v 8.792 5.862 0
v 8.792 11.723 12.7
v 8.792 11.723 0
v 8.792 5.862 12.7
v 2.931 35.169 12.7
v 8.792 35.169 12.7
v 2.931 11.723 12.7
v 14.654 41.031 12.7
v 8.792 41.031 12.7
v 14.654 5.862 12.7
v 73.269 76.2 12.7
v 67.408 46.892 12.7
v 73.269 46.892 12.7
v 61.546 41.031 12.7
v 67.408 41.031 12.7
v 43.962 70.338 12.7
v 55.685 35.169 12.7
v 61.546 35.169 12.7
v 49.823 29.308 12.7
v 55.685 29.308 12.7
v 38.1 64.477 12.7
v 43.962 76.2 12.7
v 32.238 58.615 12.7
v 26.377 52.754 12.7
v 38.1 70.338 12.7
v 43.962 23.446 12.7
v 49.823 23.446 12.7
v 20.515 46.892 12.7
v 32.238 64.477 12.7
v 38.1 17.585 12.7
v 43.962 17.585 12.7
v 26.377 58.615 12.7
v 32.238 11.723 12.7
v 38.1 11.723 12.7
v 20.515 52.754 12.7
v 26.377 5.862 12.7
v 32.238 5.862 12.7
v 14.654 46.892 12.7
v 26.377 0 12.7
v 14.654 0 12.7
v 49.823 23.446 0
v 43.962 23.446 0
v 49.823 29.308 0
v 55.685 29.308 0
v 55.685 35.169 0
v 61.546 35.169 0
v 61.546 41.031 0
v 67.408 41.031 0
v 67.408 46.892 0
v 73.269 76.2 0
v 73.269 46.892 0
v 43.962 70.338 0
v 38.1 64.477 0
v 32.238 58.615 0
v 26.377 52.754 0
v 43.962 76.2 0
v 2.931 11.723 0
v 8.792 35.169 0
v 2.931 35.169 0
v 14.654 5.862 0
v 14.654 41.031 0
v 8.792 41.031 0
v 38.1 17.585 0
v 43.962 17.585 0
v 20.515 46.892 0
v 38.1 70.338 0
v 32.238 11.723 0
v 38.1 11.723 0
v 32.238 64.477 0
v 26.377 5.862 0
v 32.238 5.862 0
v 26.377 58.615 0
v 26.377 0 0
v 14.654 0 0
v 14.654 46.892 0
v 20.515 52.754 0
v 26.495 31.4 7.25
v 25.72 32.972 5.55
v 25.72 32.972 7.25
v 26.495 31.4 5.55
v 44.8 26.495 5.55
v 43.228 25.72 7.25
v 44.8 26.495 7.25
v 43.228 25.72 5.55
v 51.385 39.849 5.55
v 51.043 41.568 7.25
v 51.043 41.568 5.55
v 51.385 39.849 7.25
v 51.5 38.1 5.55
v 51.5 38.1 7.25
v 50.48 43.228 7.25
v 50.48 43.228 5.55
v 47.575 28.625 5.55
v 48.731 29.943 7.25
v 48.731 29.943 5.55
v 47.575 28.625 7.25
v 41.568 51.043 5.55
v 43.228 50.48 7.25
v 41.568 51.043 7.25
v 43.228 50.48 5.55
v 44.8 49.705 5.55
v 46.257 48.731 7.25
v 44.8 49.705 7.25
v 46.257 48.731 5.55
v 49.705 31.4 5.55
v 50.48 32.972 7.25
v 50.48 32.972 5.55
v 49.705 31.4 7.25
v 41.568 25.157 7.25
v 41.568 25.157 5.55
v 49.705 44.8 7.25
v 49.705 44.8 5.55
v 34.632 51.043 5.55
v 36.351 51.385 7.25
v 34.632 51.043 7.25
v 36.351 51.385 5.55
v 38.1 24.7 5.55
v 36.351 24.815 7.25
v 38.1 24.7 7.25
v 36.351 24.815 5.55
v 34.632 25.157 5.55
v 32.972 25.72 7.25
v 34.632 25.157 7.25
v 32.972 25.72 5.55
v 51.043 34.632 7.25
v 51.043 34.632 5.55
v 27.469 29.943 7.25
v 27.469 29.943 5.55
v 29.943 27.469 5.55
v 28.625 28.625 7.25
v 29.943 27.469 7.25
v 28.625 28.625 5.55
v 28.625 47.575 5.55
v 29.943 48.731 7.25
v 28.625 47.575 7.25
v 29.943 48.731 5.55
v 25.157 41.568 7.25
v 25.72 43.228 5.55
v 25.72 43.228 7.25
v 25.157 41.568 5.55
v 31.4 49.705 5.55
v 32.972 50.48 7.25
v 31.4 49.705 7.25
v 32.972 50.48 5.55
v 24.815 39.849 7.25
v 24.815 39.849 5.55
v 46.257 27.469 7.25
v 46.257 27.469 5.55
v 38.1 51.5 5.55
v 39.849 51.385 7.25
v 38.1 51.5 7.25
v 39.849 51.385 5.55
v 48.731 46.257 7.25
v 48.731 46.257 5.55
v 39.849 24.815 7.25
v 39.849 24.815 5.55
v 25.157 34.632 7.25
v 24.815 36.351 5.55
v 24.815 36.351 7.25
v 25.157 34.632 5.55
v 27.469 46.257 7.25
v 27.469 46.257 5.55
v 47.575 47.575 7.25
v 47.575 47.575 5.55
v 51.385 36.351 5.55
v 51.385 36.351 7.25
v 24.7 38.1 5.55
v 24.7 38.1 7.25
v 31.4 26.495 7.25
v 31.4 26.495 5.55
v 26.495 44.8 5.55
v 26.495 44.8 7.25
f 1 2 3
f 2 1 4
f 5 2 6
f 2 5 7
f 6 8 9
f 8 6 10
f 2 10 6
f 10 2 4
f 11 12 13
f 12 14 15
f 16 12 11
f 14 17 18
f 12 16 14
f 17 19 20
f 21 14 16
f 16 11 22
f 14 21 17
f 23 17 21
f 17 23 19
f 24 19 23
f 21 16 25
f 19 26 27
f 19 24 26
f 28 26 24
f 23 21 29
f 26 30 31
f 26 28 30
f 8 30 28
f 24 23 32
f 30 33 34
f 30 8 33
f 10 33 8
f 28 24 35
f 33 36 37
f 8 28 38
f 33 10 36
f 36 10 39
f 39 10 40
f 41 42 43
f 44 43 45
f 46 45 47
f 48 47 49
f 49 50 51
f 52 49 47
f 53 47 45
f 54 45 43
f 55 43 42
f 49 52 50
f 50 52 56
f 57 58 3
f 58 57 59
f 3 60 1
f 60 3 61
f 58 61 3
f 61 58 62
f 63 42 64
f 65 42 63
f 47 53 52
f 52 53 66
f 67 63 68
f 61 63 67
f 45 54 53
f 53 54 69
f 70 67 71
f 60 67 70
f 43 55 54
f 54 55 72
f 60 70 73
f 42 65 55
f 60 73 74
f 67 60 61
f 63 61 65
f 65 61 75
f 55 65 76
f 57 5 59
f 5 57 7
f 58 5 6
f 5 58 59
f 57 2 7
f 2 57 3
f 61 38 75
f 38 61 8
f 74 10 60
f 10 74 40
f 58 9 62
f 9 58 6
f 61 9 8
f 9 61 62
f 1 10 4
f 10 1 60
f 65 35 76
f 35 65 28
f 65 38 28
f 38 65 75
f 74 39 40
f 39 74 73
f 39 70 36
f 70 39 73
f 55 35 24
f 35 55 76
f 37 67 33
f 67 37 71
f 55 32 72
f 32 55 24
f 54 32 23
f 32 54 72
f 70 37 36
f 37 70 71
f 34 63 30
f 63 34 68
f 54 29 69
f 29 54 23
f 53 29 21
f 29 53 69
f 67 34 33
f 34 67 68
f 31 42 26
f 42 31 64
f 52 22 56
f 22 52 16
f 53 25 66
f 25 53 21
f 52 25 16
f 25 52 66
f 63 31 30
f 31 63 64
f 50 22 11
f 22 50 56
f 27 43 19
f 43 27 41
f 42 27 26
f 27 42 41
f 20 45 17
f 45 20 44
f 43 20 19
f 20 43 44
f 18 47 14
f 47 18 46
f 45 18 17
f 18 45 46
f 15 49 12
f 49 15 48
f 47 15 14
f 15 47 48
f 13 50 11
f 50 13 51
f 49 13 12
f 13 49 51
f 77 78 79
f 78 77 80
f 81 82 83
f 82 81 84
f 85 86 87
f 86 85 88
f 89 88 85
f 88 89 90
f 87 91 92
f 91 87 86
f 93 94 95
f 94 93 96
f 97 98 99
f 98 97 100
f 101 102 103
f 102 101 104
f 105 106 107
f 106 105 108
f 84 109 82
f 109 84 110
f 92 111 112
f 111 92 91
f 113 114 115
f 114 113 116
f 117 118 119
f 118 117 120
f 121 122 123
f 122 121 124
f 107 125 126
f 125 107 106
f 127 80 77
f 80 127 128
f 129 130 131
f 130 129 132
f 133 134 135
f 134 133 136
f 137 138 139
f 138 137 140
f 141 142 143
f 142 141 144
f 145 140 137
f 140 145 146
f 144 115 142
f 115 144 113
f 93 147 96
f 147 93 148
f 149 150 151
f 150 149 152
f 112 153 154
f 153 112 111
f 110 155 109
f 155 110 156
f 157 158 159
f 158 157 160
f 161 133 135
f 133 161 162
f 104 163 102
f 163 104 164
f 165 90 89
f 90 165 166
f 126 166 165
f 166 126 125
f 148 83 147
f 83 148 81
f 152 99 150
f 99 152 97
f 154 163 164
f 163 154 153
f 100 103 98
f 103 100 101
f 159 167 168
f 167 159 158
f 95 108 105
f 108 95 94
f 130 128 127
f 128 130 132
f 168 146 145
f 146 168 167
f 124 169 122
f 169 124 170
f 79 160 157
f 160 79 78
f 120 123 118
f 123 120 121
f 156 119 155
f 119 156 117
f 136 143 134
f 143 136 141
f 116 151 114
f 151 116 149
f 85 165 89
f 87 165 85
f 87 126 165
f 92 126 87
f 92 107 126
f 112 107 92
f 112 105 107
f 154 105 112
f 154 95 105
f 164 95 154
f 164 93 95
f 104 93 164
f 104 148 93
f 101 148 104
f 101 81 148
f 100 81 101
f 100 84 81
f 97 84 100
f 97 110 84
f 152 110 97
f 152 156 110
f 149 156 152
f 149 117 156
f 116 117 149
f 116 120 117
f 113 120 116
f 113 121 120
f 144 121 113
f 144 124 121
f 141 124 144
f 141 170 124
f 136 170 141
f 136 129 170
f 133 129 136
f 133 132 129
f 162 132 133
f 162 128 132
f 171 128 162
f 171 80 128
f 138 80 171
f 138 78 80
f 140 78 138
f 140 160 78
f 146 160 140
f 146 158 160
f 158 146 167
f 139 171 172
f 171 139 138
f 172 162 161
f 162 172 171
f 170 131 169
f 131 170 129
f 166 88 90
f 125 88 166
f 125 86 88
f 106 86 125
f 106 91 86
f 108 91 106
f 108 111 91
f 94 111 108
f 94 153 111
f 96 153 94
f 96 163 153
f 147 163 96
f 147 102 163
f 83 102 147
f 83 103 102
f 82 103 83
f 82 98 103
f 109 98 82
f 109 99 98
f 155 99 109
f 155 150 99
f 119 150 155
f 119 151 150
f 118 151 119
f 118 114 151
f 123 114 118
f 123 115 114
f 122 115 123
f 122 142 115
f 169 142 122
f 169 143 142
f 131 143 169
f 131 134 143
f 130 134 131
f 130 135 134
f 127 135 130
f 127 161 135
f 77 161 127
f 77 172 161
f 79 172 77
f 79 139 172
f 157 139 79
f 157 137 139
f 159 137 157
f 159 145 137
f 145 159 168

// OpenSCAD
// amethyst_shard — Minecraft Item Shape 3D Model
// Auto-generated from minecraft/textures/item/amethyst_shard.png
//
// Open in OpenSCAD → F5 preview → F6 render → F7 export STL

// ============================================================
// PARAMETERS
// ============================================================

GRID_SIZE_IN    = 3.0;           // crafting table slot size
PIXELS          = 13;              // grid divisions (shape-fitted)
PIXEL_MM        = (GRID_SIZE_IN * 25.4) / PIXELS;  // mm per pixel

DEPTH_IN        = 0.5;          // extrusion depth in inches
DEPTH_MM        = DEPTH_IN * 25.4;

// NFC tag (NTAG215 25mm coin)
TAG_DIAMETER    = 26;           // mm — slightly oversized for easy drop-in
TAG_THICKNESS   = 1.2;         // mm
TAG_CLEARANCE   = 0.4;         // mm extra around tag

cavity_d = TAG_DIAMETER + TAG_CLEARANCE * 2;
cavity_h = TAG_THICKNESS + TAG_CLEARANCE;

echo(str("Tag cavity: ", cavity_d, "mm dia × ", cavity_h, "mm deep"));
echo(str("PAUSE AT: ", DEPTH_MM / 2 + cavity_h / 2, "mm to insert tag"));

module tag_cavity() {
    cx = (6.0 + 0.5) * PIXEL_MM;
    cy = (PIXELS - 1 - 6.0 + 0.5) * PIXEL_MM;
    translate([cx, cy, DEPTH_MM / 2 - cavity_h / 2])
        cylinder(d = cavity_d, h = cavity_h + 0.1, $fn = 48);
}

module tag_shelf() {
    cx = (6.0 + 0.5) * PIXEL_MM;
    cy = (PIXELS - 1 - 6.0 + 0.5) * PIXEL_MM;
    translate([cx, cy, DEPTH_MM / 2 - cavity_h / 2 - 1.0])
        cylinder(d = cavity_d + 4, h = 1.0, $fn = 48);
}

echo(str("Pixel size: ", PIXEL_MM, "mm"));
echo(str("Footprint: ", PIXELS * PIXEL_MM, "mm = ", GRID_SIZE_IN, " in"));
echo(str("Depth: ", DEPTH_MM, "mm = ", DEPTH_IN, " in"));

// ============================================================
// PIXEL MAP — 89 opaque pixels
// ============================================================

item_pixels = [
    [0.5,7.0], [0.5,8.0], [0.5,9.0], [0.5,10.0], [1.5,6.0], [1.5,7.0], [1.5,8.0], [1.5,9.0],
    [1.5,10.0], [1.5,11.0], [2.5,5.0], [2.5,6.0], [2.5,7.0], [2.5,8.0], [2.5,9.0], [2.5,10.0],
    [2.5,11.0], [2.5,12.0], [3.5,4.0], [3.5,5.0], [3.5,6.0], [3.5,7.0], [3.5,8.0], [3.5,9.0],
    [3.5,10.0], [3.5,11.0], [3.5,12.0], [4.5,3.0], [4.5,4.0], [4.5,5.0], [4.5,6.0], [4.5,7.0],
    [4.5,8.0], [4.5,9.0], [4.5,10.0], [4.5,11.0], [5.5,2.0], [5.5,3.0], [5.5,4.0], [5.5,5.0],
    [5.5,6.0], [5.5,7.0], [5.5,8.0], [5.5,9.0], [5.5,10.0], [6.5,1.0], [6.5,2.0], [6.5,3.0],
    [6.5,4.0], [6.5,5.0], [6.5,6.0], [6.5,7.0], [6.5,8.0], [6.5,9.0], [7.5,0.0], [7.5,1.0],
    [7.5,2.0], [7.5,3.0], [7.5,4.0], [7.5,5.0], [7.5,6.0], [7.5,7.0], [7.5,8.0], [8.5,0.0],
    [8.5,1.0], [8.5,2.0], [8.5,3.0], [8.5,4.0], [8.5,5.0], [8.5,6.0], [8.5,7.0], [9.5,0.0],
    [9.5,1.0], [9.5,2.0], [9.5,3.0], [9.5,4.0], [9.5,5.0], [9.5,6.0], [10.5,0.0], [10.5,1.0],
    [10.5,2.0], [10.5,3.0], [10.5,4.0], [10.5,5.0], [11.5,0.0], [11.5,1.0], [11.5,2.0], [11.5,3.0],
    [11.5,4.0]
];

// ============================================================
// MODULES
// ============================================================

module pixel_block(col, row) {
    translate([col * PIXEL_MM, (PIXELS - 1 - row) * PIXEL_MM, 0])
        cube([PIXEL_MM, PIXEL_MM, DEPTH_MM]);
}

module item_shape() {
    for (i = [0 : len(item_pixels) - 1])
        pixel_block(item_pixels[i][0], item_pixels[i][1]);
}

module item_final() {
    difference() {
        union() {
            item_shape();
            intersection() {
                item_shape();
                tag_shelf();
            }
        }
        tag_cavity();
    }
}

item_final();

// Cross-section view (uncomment to see tag cavity):
// difference() {
//     item_final();
//     translate([8 * PIXEL_MM + 50, 0, 0])
//         cube([100, 200, 100]);
// }
